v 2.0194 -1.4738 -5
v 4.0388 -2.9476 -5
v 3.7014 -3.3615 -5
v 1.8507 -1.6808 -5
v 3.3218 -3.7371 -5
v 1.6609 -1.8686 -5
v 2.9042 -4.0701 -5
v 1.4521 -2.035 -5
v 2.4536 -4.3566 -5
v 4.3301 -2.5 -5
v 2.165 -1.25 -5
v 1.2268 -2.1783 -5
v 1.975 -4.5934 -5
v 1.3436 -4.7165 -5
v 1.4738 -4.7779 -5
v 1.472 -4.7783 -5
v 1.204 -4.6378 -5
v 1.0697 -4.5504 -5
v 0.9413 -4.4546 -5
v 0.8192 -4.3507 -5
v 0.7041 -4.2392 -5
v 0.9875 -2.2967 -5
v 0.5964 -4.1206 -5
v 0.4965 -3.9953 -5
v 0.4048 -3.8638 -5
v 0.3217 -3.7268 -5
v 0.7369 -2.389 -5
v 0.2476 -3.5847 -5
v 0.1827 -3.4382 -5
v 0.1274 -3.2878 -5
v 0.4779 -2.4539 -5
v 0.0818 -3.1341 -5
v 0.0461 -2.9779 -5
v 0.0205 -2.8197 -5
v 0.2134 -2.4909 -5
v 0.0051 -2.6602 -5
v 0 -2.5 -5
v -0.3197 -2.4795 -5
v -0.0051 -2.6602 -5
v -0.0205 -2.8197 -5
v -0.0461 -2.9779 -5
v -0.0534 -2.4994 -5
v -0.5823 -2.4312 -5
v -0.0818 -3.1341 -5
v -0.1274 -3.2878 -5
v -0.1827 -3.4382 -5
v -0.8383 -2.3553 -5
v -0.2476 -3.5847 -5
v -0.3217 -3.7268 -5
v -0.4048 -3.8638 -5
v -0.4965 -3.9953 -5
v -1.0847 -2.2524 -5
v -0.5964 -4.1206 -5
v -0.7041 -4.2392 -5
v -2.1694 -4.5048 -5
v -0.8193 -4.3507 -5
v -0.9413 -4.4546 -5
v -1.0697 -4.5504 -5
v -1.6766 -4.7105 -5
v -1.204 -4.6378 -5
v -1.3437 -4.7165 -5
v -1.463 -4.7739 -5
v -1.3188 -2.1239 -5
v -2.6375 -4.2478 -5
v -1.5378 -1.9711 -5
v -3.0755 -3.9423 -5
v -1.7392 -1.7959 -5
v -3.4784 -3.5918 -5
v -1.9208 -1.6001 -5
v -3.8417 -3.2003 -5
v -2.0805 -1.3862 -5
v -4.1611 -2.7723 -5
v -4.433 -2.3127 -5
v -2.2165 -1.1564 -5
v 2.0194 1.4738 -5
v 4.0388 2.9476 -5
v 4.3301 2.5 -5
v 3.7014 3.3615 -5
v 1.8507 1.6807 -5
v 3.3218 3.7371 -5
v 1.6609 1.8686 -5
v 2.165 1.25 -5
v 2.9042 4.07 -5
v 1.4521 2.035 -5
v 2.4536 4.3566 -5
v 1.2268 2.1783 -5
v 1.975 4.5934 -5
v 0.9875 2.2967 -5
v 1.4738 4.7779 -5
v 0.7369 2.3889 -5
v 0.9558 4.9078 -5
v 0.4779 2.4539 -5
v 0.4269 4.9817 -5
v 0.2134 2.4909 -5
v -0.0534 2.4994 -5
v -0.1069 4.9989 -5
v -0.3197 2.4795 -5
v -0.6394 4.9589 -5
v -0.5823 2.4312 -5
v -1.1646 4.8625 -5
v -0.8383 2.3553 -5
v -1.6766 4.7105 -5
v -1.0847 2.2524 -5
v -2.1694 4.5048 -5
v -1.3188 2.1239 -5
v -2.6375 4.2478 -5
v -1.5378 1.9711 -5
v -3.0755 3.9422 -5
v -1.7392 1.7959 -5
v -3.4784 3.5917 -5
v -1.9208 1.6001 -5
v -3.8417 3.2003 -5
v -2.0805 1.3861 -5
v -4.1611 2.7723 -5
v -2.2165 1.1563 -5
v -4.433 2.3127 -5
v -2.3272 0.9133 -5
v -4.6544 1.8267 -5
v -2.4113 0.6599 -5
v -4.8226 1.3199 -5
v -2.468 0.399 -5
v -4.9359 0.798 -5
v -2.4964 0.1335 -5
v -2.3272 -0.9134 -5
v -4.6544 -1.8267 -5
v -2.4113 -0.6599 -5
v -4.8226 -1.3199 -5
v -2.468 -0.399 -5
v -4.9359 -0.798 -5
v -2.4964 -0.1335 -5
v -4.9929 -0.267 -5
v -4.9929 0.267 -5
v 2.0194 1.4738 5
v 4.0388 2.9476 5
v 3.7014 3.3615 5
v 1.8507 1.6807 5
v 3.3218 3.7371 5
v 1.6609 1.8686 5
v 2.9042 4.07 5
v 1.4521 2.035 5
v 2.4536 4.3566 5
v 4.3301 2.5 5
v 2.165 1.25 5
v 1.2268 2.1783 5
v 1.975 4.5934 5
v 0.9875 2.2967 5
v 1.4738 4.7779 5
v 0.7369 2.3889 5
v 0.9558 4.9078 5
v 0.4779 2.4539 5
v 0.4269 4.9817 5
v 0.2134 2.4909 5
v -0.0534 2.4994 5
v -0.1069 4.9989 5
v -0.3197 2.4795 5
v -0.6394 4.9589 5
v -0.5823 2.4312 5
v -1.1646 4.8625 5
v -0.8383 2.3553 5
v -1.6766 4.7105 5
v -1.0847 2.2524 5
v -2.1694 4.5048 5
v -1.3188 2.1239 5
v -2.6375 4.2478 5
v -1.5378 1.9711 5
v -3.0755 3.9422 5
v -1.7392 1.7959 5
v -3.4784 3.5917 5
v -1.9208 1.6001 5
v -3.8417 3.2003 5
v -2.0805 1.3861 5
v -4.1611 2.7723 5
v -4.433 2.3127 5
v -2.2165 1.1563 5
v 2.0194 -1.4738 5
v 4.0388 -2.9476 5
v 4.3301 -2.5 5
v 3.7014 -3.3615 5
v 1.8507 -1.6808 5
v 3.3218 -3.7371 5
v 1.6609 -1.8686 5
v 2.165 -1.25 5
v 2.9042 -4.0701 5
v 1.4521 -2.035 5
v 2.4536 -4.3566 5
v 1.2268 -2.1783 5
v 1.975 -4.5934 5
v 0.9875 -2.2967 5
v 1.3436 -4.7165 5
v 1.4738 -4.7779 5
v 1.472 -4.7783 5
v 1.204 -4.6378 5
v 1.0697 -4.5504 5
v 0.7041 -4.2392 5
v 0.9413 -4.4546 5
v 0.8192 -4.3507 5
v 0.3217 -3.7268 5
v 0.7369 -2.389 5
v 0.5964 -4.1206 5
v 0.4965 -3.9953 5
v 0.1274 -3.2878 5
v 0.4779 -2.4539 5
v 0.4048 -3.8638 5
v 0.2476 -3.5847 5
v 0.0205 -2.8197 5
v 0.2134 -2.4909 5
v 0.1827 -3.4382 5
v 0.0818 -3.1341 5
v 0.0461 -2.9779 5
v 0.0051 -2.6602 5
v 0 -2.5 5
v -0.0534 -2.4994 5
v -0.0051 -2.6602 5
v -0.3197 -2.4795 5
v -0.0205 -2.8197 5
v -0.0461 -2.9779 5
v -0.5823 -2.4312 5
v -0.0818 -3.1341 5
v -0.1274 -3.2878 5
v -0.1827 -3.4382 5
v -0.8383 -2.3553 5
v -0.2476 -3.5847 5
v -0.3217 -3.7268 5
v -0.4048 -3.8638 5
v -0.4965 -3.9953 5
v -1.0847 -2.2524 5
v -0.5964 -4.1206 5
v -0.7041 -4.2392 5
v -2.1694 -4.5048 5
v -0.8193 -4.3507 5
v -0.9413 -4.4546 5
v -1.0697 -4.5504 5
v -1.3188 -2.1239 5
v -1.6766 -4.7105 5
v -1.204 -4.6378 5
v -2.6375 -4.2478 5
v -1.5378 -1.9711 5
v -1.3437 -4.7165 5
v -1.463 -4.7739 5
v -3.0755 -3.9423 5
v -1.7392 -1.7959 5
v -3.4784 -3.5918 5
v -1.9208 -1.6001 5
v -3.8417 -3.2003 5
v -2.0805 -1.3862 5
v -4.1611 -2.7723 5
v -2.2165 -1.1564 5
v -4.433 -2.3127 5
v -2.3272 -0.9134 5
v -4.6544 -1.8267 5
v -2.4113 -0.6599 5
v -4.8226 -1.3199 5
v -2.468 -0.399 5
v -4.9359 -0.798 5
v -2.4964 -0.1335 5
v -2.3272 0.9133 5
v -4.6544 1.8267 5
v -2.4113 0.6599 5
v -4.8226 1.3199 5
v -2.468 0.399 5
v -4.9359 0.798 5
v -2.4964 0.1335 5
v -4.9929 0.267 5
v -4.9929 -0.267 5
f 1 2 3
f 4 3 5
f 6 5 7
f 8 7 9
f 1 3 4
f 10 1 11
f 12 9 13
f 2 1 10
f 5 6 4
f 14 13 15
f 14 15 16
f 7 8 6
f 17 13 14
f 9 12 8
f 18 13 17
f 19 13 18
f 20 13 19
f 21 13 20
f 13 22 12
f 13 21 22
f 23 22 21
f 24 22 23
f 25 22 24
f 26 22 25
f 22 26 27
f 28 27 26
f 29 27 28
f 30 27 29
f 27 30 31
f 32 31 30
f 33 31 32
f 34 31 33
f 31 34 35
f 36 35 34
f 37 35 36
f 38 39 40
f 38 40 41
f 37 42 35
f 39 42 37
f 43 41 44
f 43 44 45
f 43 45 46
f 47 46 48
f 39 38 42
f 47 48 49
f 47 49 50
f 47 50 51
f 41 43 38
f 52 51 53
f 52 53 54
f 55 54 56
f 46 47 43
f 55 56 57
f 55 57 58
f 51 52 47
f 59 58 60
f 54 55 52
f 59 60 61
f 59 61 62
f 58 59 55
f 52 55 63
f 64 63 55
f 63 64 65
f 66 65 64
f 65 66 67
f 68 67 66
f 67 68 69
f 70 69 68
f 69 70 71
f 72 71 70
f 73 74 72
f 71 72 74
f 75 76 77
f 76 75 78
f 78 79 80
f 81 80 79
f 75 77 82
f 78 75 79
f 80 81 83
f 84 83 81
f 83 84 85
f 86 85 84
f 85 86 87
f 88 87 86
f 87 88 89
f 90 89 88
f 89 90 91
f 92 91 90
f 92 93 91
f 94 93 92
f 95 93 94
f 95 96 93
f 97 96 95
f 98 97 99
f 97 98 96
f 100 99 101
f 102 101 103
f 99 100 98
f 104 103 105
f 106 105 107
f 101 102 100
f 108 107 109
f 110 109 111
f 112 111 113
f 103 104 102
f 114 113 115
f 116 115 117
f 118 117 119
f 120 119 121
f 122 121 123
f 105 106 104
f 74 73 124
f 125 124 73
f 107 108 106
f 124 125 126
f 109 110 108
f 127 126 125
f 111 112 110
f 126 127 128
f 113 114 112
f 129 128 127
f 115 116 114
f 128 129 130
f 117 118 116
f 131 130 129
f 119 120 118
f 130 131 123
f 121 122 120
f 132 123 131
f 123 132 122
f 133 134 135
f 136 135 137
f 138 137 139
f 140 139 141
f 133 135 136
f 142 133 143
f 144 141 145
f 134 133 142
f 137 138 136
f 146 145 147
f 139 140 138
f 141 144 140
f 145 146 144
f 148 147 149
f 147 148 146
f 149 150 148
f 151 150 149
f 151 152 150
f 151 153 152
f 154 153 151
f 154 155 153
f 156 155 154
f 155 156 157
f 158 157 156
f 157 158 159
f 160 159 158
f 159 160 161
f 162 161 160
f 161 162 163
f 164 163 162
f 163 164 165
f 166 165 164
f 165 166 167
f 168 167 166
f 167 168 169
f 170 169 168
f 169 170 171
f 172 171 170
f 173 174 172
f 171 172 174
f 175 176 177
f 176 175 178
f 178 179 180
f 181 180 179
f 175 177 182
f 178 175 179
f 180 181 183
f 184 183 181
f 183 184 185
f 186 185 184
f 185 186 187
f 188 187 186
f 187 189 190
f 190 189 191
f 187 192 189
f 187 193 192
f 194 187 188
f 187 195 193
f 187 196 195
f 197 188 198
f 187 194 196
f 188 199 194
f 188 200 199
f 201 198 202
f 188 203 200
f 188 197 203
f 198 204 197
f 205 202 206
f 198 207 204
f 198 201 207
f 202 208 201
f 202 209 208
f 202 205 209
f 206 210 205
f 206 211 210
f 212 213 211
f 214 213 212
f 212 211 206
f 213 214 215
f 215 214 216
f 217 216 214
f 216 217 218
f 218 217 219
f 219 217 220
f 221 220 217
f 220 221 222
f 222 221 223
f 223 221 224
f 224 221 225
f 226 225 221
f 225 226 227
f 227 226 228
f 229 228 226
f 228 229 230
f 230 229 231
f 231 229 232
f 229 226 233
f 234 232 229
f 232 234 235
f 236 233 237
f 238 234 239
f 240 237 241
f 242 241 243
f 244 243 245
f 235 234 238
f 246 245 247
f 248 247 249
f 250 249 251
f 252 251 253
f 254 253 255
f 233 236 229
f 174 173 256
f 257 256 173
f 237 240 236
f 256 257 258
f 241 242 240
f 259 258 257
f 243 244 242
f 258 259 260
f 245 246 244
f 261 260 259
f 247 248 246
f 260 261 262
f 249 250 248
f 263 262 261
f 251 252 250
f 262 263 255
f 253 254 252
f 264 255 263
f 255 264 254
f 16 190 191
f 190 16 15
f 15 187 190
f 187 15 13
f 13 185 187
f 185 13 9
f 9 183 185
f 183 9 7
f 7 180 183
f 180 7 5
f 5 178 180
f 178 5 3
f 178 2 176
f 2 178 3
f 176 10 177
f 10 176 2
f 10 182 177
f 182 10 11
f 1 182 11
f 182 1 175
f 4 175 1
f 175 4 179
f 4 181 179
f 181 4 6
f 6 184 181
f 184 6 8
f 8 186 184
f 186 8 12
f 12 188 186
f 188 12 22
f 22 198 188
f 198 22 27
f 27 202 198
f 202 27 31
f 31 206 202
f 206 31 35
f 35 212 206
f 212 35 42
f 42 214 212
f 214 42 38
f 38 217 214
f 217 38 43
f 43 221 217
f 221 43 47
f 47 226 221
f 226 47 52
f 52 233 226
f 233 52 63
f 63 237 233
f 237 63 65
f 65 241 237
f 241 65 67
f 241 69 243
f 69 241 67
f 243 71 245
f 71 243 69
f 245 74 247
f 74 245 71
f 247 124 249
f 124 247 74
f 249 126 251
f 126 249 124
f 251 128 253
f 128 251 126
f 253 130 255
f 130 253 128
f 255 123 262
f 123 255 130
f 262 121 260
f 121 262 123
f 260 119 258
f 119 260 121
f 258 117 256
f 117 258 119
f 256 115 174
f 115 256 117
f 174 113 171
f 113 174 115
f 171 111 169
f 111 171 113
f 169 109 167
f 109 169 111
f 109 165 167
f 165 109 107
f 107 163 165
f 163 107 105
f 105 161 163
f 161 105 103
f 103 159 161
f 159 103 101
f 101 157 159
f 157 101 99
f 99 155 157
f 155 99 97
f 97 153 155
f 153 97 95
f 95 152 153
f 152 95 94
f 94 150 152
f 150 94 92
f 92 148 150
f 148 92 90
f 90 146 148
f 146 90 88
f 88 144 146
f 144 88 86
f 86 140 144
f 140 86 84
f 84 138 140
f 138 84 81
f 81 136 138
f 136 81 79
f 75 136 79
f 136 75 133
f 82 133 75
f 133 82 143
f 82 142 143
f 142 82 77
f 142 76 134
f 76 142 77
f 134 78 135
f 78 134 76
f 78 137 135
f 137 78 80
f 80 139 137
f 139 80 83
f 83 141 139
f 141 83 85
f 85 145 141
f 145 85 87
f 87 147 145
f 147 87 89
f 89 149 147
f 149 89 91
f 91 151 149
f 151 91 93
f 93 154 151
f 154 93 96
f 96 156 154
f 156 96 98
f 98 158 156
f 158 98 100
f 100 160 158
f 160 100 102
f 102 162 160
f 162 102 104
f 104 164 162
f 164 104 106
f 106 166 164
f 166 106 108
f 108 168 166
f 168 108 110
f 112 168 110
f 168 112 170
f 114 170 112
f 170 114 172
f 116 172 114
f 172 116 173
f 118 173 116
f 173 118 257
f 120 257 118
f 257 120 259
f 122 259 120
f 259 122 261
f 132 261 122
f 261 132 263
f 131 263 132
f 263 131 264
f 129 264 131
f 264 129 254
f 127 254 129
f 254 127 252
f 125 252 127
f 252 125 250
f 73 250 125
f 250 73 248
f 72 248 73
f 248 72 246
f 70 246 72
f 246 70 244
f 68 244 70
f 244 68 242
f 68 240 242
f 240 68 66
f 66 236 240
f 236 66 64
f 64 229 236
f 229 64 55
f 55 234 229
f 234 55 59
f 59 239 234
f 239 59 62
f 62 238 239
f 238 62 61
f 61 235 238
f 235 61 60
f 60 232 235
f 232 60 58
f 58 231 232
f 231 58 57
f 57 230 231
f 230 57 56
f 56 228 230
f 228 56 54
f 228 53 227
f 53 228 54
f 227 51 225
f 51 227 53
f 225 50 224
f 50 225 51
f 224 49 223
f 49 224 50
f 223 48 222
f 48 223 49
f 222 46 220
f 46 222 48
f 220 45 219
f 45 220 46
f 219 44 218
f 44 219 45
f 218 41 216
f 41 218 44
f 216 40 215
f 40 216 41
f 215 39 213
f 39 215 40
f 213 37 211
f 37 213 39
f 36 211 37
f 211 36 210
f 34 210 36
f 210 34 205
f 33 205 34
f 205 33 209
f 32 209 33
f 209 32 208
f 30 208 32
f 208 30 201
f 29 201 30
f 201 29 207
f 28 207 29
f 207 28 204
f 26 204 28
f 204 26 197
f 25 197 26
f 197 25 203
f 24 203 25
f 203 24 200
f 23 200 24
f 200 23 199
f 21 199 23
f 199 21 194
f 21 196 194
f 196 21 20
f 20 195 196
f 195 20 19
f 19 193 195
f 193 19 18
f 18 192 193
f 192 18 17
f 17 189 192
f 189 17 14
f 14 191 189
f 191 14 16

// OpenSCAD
// Generated by SolidPython 1.1.3 on 2025-02-20 04:03:51
$fn=50;


intersection() {
	translate(v = [-5.0000000000, -5.0000000000, -5.0000000000]) {
		linear_extrude(height = 10) {
			polygon(points = [[9.3301270189, 7.5000000000], [9.0387948484, 7.9475644476], [8.7013899854, 8.3615044513], [8.3217613875, 8.7370979763], [7.9042396813, 9.0700604263], [7.4535877600, 9.3565935206], [6.9749464512, 9.5934286231], [6.4737758721, 9.7778640289], [5.9557931435, 9.9077957850], [5.4269071715, 9.9817416901], [4.8931512411, 9.9988582039], [4.3606141916, 9.9589500691], [3.8353709579, 9.8624725392], [3.3234132705, 9.7105261849], [2.8305813044, 9.5048443395], [2.3624970575, 9.2477733259], [1.9245002169, 8.9422456905], [1.5215872470, 8.5917467505], [1.1583543913, 8.2002748347], [0.8389452414, 7.7722956725], [0.5670034681, 7.3126914512], [0.3456312568, 6.8267051218], [0.1773539185, 6.3198805903], [0.0640910829, 5.7979994752], [0.0071347997, 5.2670151533], [0.0071347997, 4.7329848467], [0.0640910829, 4.2020005248], [0.1773539185, 3.6801194097], [0.3456312568, 3.1732948782], [0.5670034681, 2.6873085488], [0.8389452414, 2.2277043275], [1.1583543913, 1.7997251653], [1.5215872470, 1.4082532495], [1.9245002169, 1.0577543095], [2.3624970575, 0.7522266741], [2.8305813044, 0.4951556605], [3.3234132705, 0.2894738151], [3.8353709579, 0.1375274608], [4.3606141916, 0.0410499309], [4.8931512411, 0.0011417961], [5.4269071715, 0.0182583099], [5.9557931435, 0.0922042150], [6.4737758721, 0.2221359711], [6.9749464512, 0.4065713769], [7.4535877600, 0.6434064794], [7.9042396813, 0.9299395737], [8.3217613875, 1.2629020237], [8.7013899854, 1.6384955487], [9.0387948484, 2.0524355524], [9.3301270189, 2.5000000000], [7.1650635095, 3.7500000000], [7.0193974242, 3.5262177762], [6.8506949927, 3.3192477743], [6.6608806938, 3.1314510119], [6.4521198406, 2.9649697869], [6.2267938800, 2.8217032397], [5.9874732256, 2.7032856885], [5.7368879360, 2.6110679855], [5.4778965718, 2.5461021075], [5.2134535857, 2.5091291549], [4.9465756205, 2.5005708980], [4.6803070958, 2.5205249654], [4.4176854790, 2.5687637304], [4.1617066352, 2.6447369076], [3.9152906522, 2.7475778302], [3.6812485287, 2.8761133371], [3.4622501085, 3.0288771547], [3.2607936235, 3.2041266248], [3.0791771957, 3.3998625827], [2.9194726207, 3.6138521637], [2.7835017341, 3.8436542744], [2.6728156284, 4.0866474391], [2.5886769593, 4.3400597048], [2.5320455415, 4.6010002624], [2.5035673999, 4.8664924234], [2.5035673999, 5.1335075766], [2.5320455415, 5.3989997376], [2.5886769593, 5.6599402952], [2.6728156284, 5.9133525609], [2.7835017341, 6.1563457256], [2.9194726207, 6.3861478363], [3.0791771957, 6.6001374173], [3.2607936235, 6.7958733752], [3.4622501085, 6.9711228453], [3.6812485287, 7.1238866629], [3.9152906522, 7.2524221698], [4.1617066352, 7.3552630924], [4.4176854790, 7.4312362696], [4.6803070958, 7.4794750346], [4.9465756205, 7.4994291020], [5.2134535857, 7.4908708451], [5.4778965718, 7.4538978925], [5.7368879360, 7.3889320145], [5.9874732256, 7.2967143115], [6.2267938800, 7.1782967603], [6.4521198406, 7.0350302131], [6.6608806938, 6.8685489881], [6.8506949927, 6.6807522257], [7.0193974242, 6.4737822238], [7.1650635095, 6.2500000000]]);
		}
	}
	rotate(a = -90, v = [0, 0, 1]) {
		translate(v = [-5.0000000000, -5.0000000000, -5.0000000000]) {
			linear_extrude(height = 10) {
				polygon(points = [[7.5000000000, 10.0000000000], [7.6601755500, 9.9948634819], [7.8196929042, 9.9794750346], [7.9778965718, 9.9538978925], [8.1341364598, 9.9182371576], [8.2877705451, 9.8726393675], [8.4381675122, 9.8172918934], [8.5847093478, 9.7524221698], [8.7267938800, 9.6782967603], [8.8638372530, 9.5952202622], [8.9952763262, 9.5035340547], [9.1205709883, 9.4036148959], [9.2392063765, 9.2958733752], [9.3506949927, 9.1807522257], [9.4545787062, 9.0587245046], [9.5504306365, 8.9302916503], [9.6378569075, 8.7959814208], [9.7164982659, 8.6563457256], [9.7860315575, 8.5119583578], [9.8461710551, 8.3634126361], [9.8966696326, 8.2113189666], [9.9373197805, 8.0563023349], [9.9679544585, 7.8989997376], [9.9884477824, 7.7400575648], [9.9987155405, 7.5801289439], [9.9987155405, 7.4198710561], [9.9884477824, 7.2599424352], [9.9679544585, 7.1010002624], [9.9373197805, 6.9436976651], [9.8966696326, 6.7886810334], [9.8461710551, 6.6365873639], [9.7860315575, 6.4880416422], [9.7164982659, 6.3436542744], [9.6378569075, 6.2040185792], [9.5504306365, 6.0697083497], [9.4545787062, 5.9412754954], [9.3506949927, 5.8192477743], [9.2392063765, 5.7041266248], [9.1205709883, 5.5963851041], [8.9952763262, 5.4964659453], [8.8638372530, 5.4047797378], [8.7267938800, 5.3217032397], [8.5847093478, 5.2475778302], [8.4381675122, 5.1827081066], [8.2877705451, 5.1273606325], [8.1341364598, 5.0817628424], [7.9778965718, 5.0461021075], [7.8196929042, 5.0205249654], [7.6601755500, 5.0051365181], [7.5000000000, 5.0000000000], [7.5000000000, 5.0000000000], [7.6601755500, 4.9948634819], [7.8196929042, 4.9794750346], [7.9778965718, 4.9538978925], [8.1341364598, 4.9182371576], [8.2877705451, 4.8726393675], [8.4381675122, 4.8172918934], [8.5847093478, 4.7524221698], [8.7267938800, 4.6782967603], [8.8638372530, 4.5952202622], [8.9952763262, 4.5035340547], [9.1205709883, 4.4036148959], [9.2392063765, 4.2958733752], [9.3506949927, 4.1807522257], [9.4545787062, 4.0587245046], [9.5504306365, 3.9302916503], [9.6378569075, 3.7959814208], [9.7164982659, 3.6563457256], [9.7860315575, 3.5119583578], [9.8461710551, 3.3634126361], [9.8966696326, 3.2113189666], [9.9373197805, 3.0563023349], [9.9679544585, 2.8989997376], [9.9884477824, 2.7400575648], [9.9987155405, 2.5801289439], [9.9987155405, 2.4198710561], [9.9884477824, 2.2599424352], [9.9679544585, 2.1010002624], [9.9373197805, 1.9436976651], [9.8966696326, 1.7886810334], [9.8461710551, 1.6365873639], [9.7860315575, 1.4880416422], [9.7164982659, 1.3436542744], [9.6378569075, 1.2040185792], [9.5504306365, 1.0697083497], [9.4545787062, 0.9412754954], [9.3506949927, 0.8192477743], [9.2392063765, 0.7041266248], [9.1205709883, 0.5963851041], [8.9952763262, 0.4964659453], [8.8638372530, 0.4047797378], [8.7267938800, 0.3217032397], [8.5847093478, 0.2475778302], [8.4381675122, 0.1827081066], [8.2877705451, 0.1273606325], [8.1341364598, 0.0817628424], [7.9778965718, 0.0461021075], [7.8196929042, 0.0205249654], [7.6601755500, 0.0051365181], [7.5000000000, 0.0000000000], [0, 0], [0, 10]]);
			}
		}
	}
}
/***********************************************
*********      SolidPython code:      **********
************************************************
 
from solid import *
from solid.utils import *

import math
import matplotlib.pyplot as plt
import subprocess
import os

class Hole:
    def __init__(self, x, y, radius):
        """
        Hole defined by:
        :param x: x dimension for center point of the circle as a ratio of letter height
        :param y: y dimension for center point of the circle as a ratio of letter height
        :param radius: radius of circle as a ratio of letter height
        """
        self.x = x
        self.y = y
        self.radius = radius

class Letter3D:
    def __init__(self, name, outer_shape_points, height, holes=None):
        """
        3D Letter defined by:
        :param name: name of letter
        :param outer_shape_points: points defining the outer shape of the letter
        :param heigh: size of cube that letter fits inside
        :param holes: list of Holes
        """
        self.name = name
        self.outer_shape_points = outer_shape_points
        self.holes = holes if holes is None else []
        self.height = height


    def generate(self):
        shape = polygon(points=self.outer_shape_points)

        if self.holes:
            for hole in self.holes:
                circle_hole = circle(r=hole.radius*self.height)
                positioned_hole = translate([hole.x*self.height, hole.y*self.height])(circle_hole)
                shape = difference()(shape, positioned_hole)
        
        shape_3d = linear_extrude(height=self.height)(shape)
        shape_3d = translate([-self.height/2, -self.height/2, -self.height/2])(shape_3d)
        return shape_3d
    
    def render(self):
        scad_render_to_file(self.shape, f"output/{self.name}.scad", file_header='$fn=50;')
        subprocess.run(["C:\\Program Files\\OpenSCAD\\openscad.exe", "-o", f"output\\{self.name}.stl", f"output\\{self.name}.scad"])


class TwoLetter3D:
    def __init__(self, height, letterA, letterA_face, letterB=None, letterB_face=None):
        self.height = height
        self.letterA = letterA
        self.letterB = letterB
        self.letterA_face = letterA_face
        self.letterB_face = letterB_face

    def call_letter_generation(self, letter):
        letter = letter.upper()
        function_name = f"letter_{letter}"
        func = globals().get(function_name)
        if func is None:
            raise ValueError(f"No letter generation function defined for letter '{letter}'.")
        else:
            print(func)
        return func(self.height)
    
    def rotate_object(self, face, shape):
        face = face.lower()
        if face == "z":
            return shape
        if face == "x":
            return rotate(a=90, v=[0,1,0])(shape)
        if face == "y":
            return rotate(a=-90, v=[0,0,1])(shape)
        else:
            raise ValueError("Face must be one of 'x', 'y', or 'z'.")

    def render(self):
        if self.letterA:
            letterA3D = self.call_letter_generation(self.letterA)
            letterA3D = self.rotate_object(self.letterA_face, letterA3D)

        if self.letterB:
            letterB3D = self.call_letter_generation(self.letterB)
            letterB3D = self.rotate_object(self.letterB_face, letterB3D)
            combined = intersection()(letterA3D, letterB3D)
            file_name = self.letterA + self.letterB
            scad_render_to_file(combined, f"output/{file_name}.scad", file_header='$fn=50;')
            subprocess.run(["C:\\Program Files\\OpenSCAD\\openscad.exe", "-o", f"output\\{file_name}.stl", f"output\\{file_name}.scad"])
            return
        else:
            file_name = self.letterA
            scad_render_to_file(letterA3D, f"output/{file_name}.scad", file_header='$fn=50;')
            subprocess.run(["C:\\Program Files\\OpenSCAD\\openscad.exe", "-o", f"output\\{file_name}.stl", f"output\\{file_name}.scad"])
    
                

def arc_points(radius, start_angle, end_angle, center=[0,0], num_points=50):
    angles = [start_angle + i * (end_angle - start_angle) / (num_points - 1)
              for i in range(num_points)]
    points = [
        (center[0] + radius * math.cos(math.radians(angle)),
         center[1] + radius * math.sin(math.radians(angle)))
        for angle in angles
    ]
    return points

def letter_A(h):
    shape_points = [(0,0), (h/2, h), (h, 0), (5/6*h, 0), (2/3*h, 1/3*h), (1/3*h, 1/3*h), (h/6, 0)]
    holes = [Hole(1/2, 7/12, 1/6)]
    A = Letter3D("A", shape_points, h, holes)
    return A.generate()

def letter_B(h):
    top_arc_points = arc_points(h/4, 90, -90, center=[3/4*h, 3/4*h])
    bottom_arc_points = arc_points(h/4, 90, -90, center=[3/4*h, h/4])
    other_points = [(0,0),(0,h)]

    shape_points = top_arc_points + bottom_arc_points + other_points
    holes = [Hole(1/2, 3/4, 1/6), Hole(1/2, 1/4, 1/6)]
    B = Letter3D("B", shape_points, h, holes)
    return B.generate()

def letter_C(h):
    outer_arc_points = arc_points(h/2, 30, 330, center=[h/2,h/2])
    inner_arc_points = arc_points(h/4, 30, 330, center=[h/2,h/2])[::-1]
    shape_points = outer_arc_points + inner_arc_points
    # print(shape_points)
    C = Letter3D("C", shape_points, h)
    return C.generate()


def letter_D(h):
    outer_arc_points = arc_points(h/2, 90, -90, center= [h/2, h/2])
    shape_points = outer_arc_points + [(0,0), (0, h)]
    holes = [Hole(1/2, 1/2, 1/6)]
    D = Letter3D("D", shape_points, h, holes)
    return D.generate()

def letter_E(h):
    points = [(0,0), (h,0), (h,h/5), (h/5,h/5), (h/5,2/5*h), (3/4*h,2/5*h), (3/4*h,3/5*h), (h/5,3/5*h), (h/5,4/5*h), (h,4/5*h), (h,h), (0,h)]
    E = Letter3D("E", points, h)
    return E.generate()

def letter_F(h):
    points = [(0,0), (h/5,0), (h/5,2/5*h), (3/4*h,2/5*h), (3/4*h,3/5*h), (h/5,3/5*h), (h/5,4/5*h), (h,4/5*h), (h,h), (0,h)]
    F = Letter3D("F", points, h)
    return F.generate()

if __name__ == "__main__":
    os.makedirs("output", exist_ok=True)

    letters = [chr(x) for x in range(ord('A'), ord('F') + 1)]
    for letter in letters:
        for other_letter in letters:
            shape = TwoLetter3D(10, letter, "z", other_letter, "y")
            shape.render()
 
 
************************************************/
